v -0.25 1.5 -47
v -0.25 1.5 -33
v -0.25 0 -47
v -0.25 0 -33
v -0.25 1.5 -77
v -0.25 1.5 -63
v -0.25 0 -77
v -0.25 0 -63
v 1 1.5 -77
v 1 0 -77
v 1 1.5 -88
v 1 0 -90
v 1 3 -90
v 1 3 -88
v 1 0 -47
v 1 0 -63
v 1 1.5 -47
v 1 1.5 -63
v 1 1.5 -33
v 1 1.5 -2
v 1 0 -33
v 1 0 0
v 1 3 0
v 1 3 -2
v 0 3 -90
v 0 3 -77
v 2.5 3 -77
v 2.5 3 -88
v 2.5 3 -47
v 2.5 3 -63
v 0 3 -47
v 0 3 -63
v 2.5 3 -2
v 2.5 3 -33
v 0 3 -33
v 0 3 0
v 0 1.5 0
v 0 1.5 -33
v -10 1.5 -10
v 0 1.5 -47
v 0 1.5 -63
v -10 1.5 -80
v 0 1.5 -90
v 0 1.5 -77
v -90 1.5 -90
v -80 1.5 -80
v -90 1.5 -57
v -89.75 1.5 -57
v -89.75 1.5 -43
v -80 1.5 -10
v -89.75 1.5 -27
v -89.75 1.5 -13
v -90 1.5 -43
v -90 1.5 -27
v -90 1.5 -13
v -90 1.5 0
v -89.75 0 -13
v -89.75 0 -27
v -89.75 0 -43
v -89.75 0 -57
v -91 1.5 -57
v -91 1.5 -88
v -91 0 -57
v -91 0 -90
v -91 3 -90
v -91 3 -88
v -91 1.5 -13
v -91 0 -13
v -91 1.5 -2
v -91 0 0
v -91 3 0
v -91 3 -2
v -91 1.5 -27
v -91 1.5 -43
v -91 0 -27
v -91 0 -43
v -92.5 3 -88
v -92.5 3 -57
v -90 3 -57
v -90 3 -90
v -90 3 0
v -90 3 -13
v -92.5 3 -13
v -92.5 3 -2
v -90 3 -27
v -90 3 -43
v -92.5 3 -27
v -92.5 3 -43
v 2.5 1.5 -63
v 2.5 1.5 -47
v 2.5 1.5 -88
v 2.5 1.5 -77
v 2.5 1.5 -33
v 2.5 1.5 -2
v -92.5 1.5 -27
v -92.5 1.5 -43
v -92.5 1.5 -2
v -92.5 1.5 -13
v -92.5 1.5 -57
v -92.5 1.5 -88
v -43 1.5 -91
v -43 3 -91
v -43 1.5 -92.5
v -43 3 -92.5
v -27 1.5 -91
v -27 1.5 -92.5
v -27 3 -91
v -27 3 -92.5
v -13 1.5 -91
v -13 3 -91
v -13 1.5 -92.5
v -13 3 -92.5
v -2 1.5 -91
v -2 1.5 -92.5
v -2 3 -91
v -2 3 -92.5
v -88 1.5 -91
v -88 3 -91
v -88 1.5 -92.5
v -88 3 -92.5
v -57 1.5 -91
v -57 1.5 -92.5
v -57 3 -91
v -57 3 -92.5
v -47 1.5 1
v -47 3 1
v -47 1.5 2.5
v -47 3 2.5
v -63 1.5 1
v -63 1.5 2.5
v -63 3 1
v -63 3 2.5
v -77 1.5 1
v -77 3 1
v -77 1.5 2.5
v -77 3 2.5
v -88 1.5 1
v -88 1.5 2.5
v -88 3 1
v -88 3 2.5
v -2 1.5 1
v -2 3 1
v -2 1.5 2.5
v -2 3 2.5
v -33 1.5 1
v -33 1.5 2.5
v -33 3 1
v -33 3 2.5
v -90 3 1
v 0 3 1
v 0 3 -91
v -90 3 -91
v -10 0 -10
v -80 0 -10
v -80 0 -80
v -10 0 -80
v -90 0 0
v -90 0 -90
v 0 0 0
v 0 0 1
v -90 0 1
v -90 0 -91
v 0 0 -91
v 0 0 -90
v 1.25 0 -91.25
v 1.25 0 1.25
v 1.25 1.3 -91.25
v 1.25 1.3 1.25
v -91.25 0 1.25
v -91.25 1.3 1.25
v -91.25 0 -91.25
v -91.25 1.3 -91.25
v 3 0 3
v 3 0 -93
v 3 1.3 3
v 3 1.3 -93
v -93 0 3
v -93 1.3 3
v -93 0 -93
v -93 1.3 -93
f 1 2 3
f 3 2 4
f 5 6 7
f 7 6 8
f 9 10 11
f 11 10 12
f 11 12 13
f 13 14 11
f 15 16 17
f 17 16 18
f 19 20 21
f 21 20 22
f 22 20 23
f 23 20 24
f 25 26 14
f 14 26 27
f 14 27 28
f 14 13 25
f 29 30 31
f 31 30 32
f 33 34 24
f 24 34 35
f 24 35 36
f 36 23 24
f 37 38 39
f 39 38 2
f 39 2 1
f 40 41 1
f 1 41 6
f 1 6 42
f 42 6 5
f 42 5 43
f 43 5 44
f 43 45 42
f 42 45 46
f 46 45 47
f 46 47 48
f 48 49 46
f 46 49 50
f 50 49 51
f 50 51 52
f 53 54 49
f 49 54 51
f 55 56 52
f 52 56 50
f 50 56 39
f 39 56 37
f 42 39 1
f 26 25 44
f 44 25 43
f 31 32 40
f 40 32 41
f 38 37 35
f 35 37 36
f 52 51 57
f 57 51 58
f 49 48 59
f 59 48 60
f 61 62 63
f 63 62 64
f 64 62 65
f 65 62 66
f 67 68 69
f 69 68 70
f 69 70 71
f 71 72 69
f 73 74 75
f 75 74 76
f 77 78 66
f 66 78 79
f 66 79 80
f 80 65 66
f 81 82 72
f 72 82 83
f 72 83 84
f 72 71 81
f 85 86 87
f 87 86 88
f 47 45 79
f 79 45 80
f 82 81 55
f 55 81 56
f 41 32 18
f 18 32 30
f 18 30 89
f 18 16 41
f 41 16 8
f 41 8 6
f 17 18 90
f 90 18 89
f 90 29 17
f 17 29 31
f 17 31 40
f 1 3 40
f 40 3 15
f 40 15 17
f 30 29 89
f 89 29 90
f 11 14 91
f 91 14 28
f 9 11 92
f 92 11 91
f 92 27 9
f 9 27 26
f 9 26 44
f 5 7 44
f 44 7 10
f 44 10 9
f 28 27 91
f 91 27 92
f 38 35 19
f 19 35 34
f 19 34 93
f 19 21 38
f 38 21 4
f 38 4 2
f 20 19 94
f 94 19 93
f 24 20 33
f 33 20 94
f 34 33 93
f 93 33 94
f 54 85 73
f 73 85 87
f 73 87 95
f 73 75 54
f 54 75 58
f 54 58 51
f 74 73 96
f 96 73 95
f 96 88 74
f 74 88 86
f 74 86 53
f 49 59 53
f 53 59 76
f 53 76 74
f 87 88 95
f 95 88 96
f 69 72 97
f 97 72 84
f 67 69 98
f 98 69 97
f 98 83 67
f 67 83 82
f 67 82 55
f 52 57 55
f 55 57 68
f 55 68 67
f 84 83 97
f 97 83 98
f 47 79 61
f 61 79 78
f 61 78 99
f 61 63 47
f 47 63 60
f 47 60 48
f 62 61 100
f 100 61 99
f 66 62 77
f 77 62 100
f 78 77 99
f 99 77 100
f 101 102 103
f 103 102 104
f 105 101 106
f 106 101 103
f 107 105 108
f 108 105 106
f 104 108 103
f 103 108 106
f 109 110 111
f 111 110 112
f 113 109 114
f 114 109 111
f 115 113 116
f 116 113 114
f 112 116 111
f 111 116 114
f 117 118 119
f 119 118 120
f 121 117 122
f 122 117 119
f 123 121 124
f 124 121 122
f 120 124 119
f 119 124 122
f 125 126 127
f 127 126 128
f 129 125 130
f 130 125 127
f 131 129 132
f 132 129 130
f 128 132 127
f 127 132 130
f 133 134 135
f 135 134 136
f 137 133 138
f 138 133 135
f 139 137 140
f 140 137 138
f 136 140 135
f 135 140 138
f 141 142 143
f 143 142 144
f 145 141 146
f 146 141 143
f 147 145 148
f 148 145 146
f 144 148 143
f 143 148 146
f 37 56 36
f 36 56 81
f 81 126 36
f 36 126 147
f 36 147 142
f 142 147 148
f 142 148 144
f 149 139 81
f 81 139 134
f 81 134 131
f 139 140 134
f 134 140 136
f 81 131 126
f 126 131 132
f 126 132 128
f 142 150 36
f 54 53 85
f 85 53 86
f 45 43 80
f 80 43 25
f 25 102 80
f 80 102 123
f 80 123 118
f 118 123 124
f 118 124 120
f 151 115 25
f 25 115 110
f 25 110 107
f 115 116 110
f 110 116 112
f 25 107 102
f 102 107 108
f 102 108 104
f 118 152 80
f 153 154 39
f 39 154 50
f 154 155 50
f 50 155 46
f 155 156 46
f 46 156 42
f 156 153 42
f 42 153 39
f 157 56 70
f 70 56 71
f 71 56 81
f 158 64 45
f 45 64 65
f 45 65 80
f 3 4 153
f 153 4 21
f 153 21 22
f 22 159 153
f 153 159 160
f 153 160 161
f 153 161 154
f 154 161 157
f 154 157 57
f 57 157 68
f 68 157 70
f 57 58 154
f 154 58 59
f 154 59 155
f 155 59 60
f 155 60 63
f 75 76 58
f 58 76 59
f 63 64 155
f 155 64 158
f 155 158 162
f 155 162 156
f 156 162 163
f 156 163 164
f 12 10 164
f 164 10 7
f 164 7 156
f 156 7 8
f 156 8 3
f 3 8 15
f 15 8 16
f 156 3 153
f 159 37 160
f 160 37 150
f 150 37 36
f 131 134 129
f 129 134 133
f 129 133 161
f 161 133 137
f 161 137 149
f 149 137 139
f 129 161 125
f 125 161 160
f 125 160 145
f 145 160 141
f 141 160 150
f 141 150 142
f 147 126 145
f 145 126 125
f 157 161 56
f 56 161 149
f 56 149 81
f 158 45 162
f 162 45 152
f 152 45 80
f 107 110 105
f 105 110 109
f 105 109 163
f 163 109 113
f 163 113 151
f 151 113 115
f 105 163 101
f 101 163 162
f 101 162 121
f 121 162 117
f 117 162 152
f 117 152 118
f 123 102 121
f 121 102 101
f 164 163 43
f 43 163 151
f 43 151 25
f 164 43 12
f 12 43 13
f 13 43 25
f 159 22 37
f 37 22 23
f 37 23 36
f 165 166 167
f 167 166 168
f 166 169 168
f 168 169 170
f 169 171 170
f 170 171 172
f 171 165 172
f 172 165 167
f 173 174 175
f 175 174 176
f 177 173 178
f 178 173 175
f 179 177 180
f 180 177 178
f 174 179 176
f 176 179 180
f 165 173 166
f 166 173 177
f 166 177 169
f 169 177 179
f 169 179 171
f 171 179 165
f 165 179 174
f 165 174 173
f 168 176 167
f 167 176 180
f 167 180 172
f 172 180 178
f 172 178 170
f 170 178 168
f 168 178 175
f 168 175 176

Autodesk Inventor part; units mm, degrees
ref_plane "YZ Plane" through (0, 0, 0) normal (1, 0, 0) x (0, 1, 0)
ref_plane "XZ Plane" through (0, 0, 0) normal (0, 1, 0) x (-1, 0, 0)
ref_plane "XY Plane" through (0, 0, 0) normal (0, 0, 1) x (1, 0, 0)
sketch "Sketch1" plane through (0, 0, 0) normal (0, 1, 0) x (-1, 0, 0)
  line L0 (0, 0) -> (0, -90)
  line L1 (0, -90) -> (90, -90)
  line L2 (90, -90) -> (90, 0)
  line L3 (90, 0) -> (0, 0)
  line L4 (90, -90) -> (90, 0)
  line L5 (90, -90) -> (0, -90)
  line L6 (0, -90) -> (0, -91)
  line L7 (0, -91) -> (90, -91)
  line L8 (90, -91) -> (90, -90)
  line L9 (0, -90) -> (-1, -90)
  line L10 (-1, -90) -> (-1, 0)
  line L11 (-1, 0) -> (0, 0)
  line L12 (0, 0) -> (0, -90)
  line L13 (90, 0) -> (0, 0)
  line L14 (0, 0) -> (0, 1)
  line L15 (0, 1) -> (90, 1)
  line L16 (90, 1) -> (90, 0)
  line L17 (0, 0) -> (0, -10)
  line L18 (0, -10) -> (10, -10)
  line L19 (10, -10) -> (80, -10)
  line L20 (80, -10) -> (80, -80)
  line L21 (80, -80) -> (10, -80)
  line L22 (10, -80) -> (10, -10)
  line L23 (90, 0) -> (91, 0)
  line L24 (91, 0) -> (91, -90)
  line L25 (91, -90) -> (90, -90)
  line L26 (90, -90) -> (90, 0)
  dimension "d0" = 90
  dimension "d1" = 90
  dimension "d2" = 90
  dimension "d15" = 90
  dimension "d16" = 1
  dimension "d17" = 1
  dimension "d18" = 90
  dimension "d19" = 90
  dimension "d20" = 1
  dimension "d31" = 10
  dimension "d32" = 10
  dimension "d33" = 70
  dimension "d34" = 70
  dimension "d37" = 1
  dimension "d38" = 90
extrude "Extrusion4" add sketch "Sketch1" along normal blind 1.5
sketch "Sketch5" plane through (0, 1.5, 0) normal (0, 1, 0) x (1, 0, 0)
  line L0 (0, -1) -> (0, 0) projected
  line L1 (-90, -1) -> (0, -1) projected
  line L2 (0, 0) -> (-90, 0)
  line L3 (-90, 0) -> (-90, -1)
  line L4 (-90, -1) -> (0, -1)
  line L5 (0, -1) -> (0, 0)
  line L6 (-90, 90) -> (-91, 90) projected
  line L7 (-90, 0) -> (-91, 0)
  line L8 (-91, 0) -> (-91, 90)
  line L9 (-91, 90) -> (-90, 90)
  line L10 (-90, 90) -> (-90, 0)
  line L11 (0, 90) -> (0, 91) projected
  line L12 (-90, 90) -> (0, 90)
  line L13 (0, 90) -> (0, 91)
  line L14 (0, 91) -> (-90, 91)
  line L15 (-90, 91) -> (-90, 90)
  line L16 (1, 0) -> (1, 90) projected
  line L17 (0, 90) -> (1, 90)
  line L18 (1, 90) -> (1, 0)
  line L19 (1, 0) -> (0, 0)
  line L20 (0, 0) -> (0, 90)
  dimension "d85" = 90
  dimension "d86" = 1
extrude "Extrusion5" add sketch "Sketch5" along normal blind 1.5 contours L1 L3 L2 L0 | L20 L17 L16 L19 | L7 L8 L6 L10 | L12 L15 L14 L11
sketch "Sketch6" plane through (-90, 0, 1) normal (0, 0, 1) x (1, 0, 0)
  line L0 (90, 0) -> (90, 3) projected
  line L1 (90, 3) -> (88, 3)
  line L2 (90, 3) -> (0, 3) projected
  line L3 (88, 3) -> (57, 3)
  line L4 (57, 3) -> (57, 1.5)
  line L5 (57, 1.5) -> (88, 1.5)
  line L6 (88, 1.5) -> (88, 3)
  line L7 (57, 3) -> (43, 3)
  line L8 (43, 3) -> (27, 3)
  line L9 (27, 3) -> (27, 1.5)
  line L10 (27, 1.5) -> (43, 1.5)
  line L11 (43, 1.5) -> (43, 3)
  line L12 (27, 3) -> (13, 3)
  line L13 (13, 3) -> (2, 3)
  line L14 (2, 3) -> (2, 1.5)
  line L15 (2, 1.5) -> (13, 1.5)
  line L16 (13, 1.5) -> (13, 3)
  line L17 (2, 3) -> (0, 3)
  dimension "d41" = 2
  dimension "d42" = 31
  dimension "d43" = 1.5
  dimension "d44" = 14
  dimension "d45" = 16
  dimension "d46" = 1.5
  dimension "d47" = 14
  dimension "d48" = 11
  dimension "d49" = 1.5
extrude "Extrusion6" add sketch "Sketch6" along normal blind 1.5
sketch "Sketch9" plane through (0, 0, -91) normal (0, 0, -1) x (-1, 0, 0)
  line L0 (90, 0) -> (90, 3)
  line L1 (90, 3) -> (88, 3)
  line L2 (90, 3) -> (0, 3)
  line L3 (88, 3) -> (57, 3)
  line L4 (57, 3) -> (57, 1.5)
  line L5 (57, 1.5) -> (88, 1.5)
  line L6 (88, 1.5) -> (88, 3)
  line L7 (57, 3) -> (43, 3)
  line L8 (43, 3) -> (27, 3)
  line L9 (27, 3) -> (27, 1.5)
  line L10 (27, 1.5) -> (43, 1.5)
  line L11 (43, 1.5) -> (43, 3)
  line L12 (27, 3) -> (13, 3)
  line L13 (13, 3) -> (2, 3)
  line L14 (2, 3) -> (2, 1.5)
  line L15 (2, 1.5) -> (13, 1.5)
  line L16 (13, 1.5) -> (13, 3)
  line L17 (2, 3) -> (0, 3)
  point P0 (0, 0)
  dimension "d52" = 2
  dimension "d53" = 31
  dimension "d54" = 1.5
  dimension "d55" = 14
  dimension "d56" = 16
  dimension "d57" = 1.5
  dimension "d58" = 14
  dimension "d59" = 11
  dimension "d60" = 1.5
extrude "Extrusion7" add sketch "Sketch9" along normal blind 1.5
sketch "Sketch7" plane through (-91, 0, -90) normal (-1, 0, 0) x (0, 0, 1)
  line L0 (90, 1.5) -> (90, 3) projected
  line L1 (90, 3) -> (88, 3)
  line L2 (90, 3) -> (0, 3) projected
  line L3 (88, 3) -> (77, 3)
  line L4 (77, 3) -> (77, 1.5)
  line L5 (77, 1.5) -> (88, 1.5)
  line L6 (88, 1.5) -> (88, 3)
  line L7 (77, 3) -> (63, 3)
  line L8 (63, 3) -> (47, 3)
  line L9 (47, 3) -> (47, 1.5)
  line L10 (47, 1.5) -> (63, 1.5)
  line L11 (63, 1.5) -> (63, 3)
  line L12 (47, 3) -> (33, 3)
  line L13 (33, 3) -> (2, 3)
  line L14 (2, 3) -> (2, 1.5)
  line L15 (2, 1.5) -> (33, 1.5)
  line L16 (33, 1.5) -> (33, 3)
  line L17 (0, 0) -> (0, 3) projected
  line L18 (2, 3) -> (0, 3)
  point P0 (90, 0)
  dimension "d63" = 2
  dimension "d64" = 11
  dimension "d65" = 1.5
  dimension "d66" = 14
  dimension "d67" = 16
  dimension "d68" = 1.5
  dimension "d69" = 14
  dimension "d70" = 31
  dimension "d71" = 1.5
extrude "Extrusion8" add sketch "Sketch7" along normal blind 1.5
sketch "Sketch8" plane through (1, 0, 0) normal (1, 0, 0) x (0, 0, -1)
  line L0 (90, 1.5) -> (90, 3)
  line L1 (90, 3) -> (88, 3)
  line L2 (90, 3) -> (0, 3)
  line L3 (88, 3) -> (77, 3)
  line L4 (77, 3) -> (77, 1.5)
  line L5 (77, 1.5) -> (88, 1.5)
  line L6 (88, 1.5) -> (88, 3)
  line L7 (77, 3) -> (63, 3)
  line L8 (63, 3) -> (47, 3)
  line L9 (47, 3) -> (47, 1.5)
  line L10 (47, 1.5) -> (63, 1.5)
  line L11 (63, 1.5) -> (63, 3)
  line L12 (47, 3) -> (33, 3)
  line L13 (33, 3) -> (2, 3)
  line L14 (2, 3) -> (2, 1.5)
  line L15 (2, 1.5) -> (33, 1.5)
  line L16 (33, 1.5) -> (33, 3)
  line L17 (0, 0) -> (0, 3)
  line L18 (2, 3) -> (0, 3)
  point P0 (0, 0)
  point P1 (90, 0)
  dimension "d74" = 2
  dimension "d75" = 11
  dimension "d76" = 1.5
  dimension "d77" = 14
  dimension "d78" = 16
  dimension "d79" = 1.5
  dimension "d80" = 14
  dimension "d81" = 31
  dimension "d82" = 1.5
extrude "Extrusion9" add sketch "Sketch8" along normal blind 1.5
sketch "Sketch11" plane through (-90, 0, 1) normal (0, 0, 1) x (1, 0, 0)
  line L0 (0, 0) -> (90, 0) projected
  line L1 (0, 3) -> (2, 3) projected
  dimension "d87" = 3
sketch "Sketch12" plane through (0, 3, 0) normal (0, 1, 0) x (1, 0, 0)
  line L0 (-2, -2.5) -> (-33, -2.5) projected
  line L1 (0, 0) -> (-90, 0) projected
  dimension "d88" = 2.5
sketch "Sketch13" plane through (-91, 0, -90) normal (-1, 0, 0) x (0, 0, 1)
  line L0 (77, 1.5) -> (77, 3) projected
  line L1 (77, 3) -> (63, 3)
  line L2 (63, 3) -> (63, 0)
  line L3 (63, 0) -> (77, 0)
  line L4 (77, 0) -> (77, 3)
  line L5 (47, 1.5) -> (47, 3) projected
  line L6 (47, 3) -> (33, 3)
  line L7 (33, 3) -> (33, 0)
  line L8 (33, 0) -> (47, 0)
  line L9 (47, 0) -> (47, 3)
  point P0 (90, 0)
  dimension "d89" = 14
  dimension "d90" = 3
  dimension "d91" = 14
  dimension "d92" = 3
extrude "Extrusion10" cut sketch "Sketch13" against normal blind 1.25
sketch "Sketch14" plane through (1, 0, 0) normal (1, 0, 0) x (0, 0, -1)
  line L0 (33, 3) -> (47, 3)
  line L1 (47, 3) -> (47, 0)
  line L2 (47, 0) -> (33, 0)
  line L3 (33, 0) -> (33, 3)
  line L4 (77, 3) -> (63, 3)
  line L5 (63, 3) -> (63, 0)
  line L6 (63, 0) -> (77, 0)
  line L7 (77, 0) -> (77, 3)
  point P0 (0, 0)
  dimension "d95" = 14
  dimension "d96" = 3
  dimension "d97" = 14
  dimension "d98" = 3
extrude "Extrusion11" cut sketch "Sketch14" against normal blind 1.25
sketch "Sketch15" plane through (0, 0, 0) normal (0, -1, 0) x (1, 0, 0)
  line L0 (-90, -90) -> (-91, -90) projected
  line L1 (-91, -90) -> (-91.25, -90)
  line L2 (-91, -90) -> (-90.75, -90) construction
  line L3 (-91.25, -90) -> (-91.25, -91.25)
  line L4 (-91.25, -91.25) -> (1.25, -91.25)
  line L5 (1.25, -91.25) -> (1.25, 1.25)
  line L6 (1.25, 1.25) -> (-91.25, 1.25)
  line L7 (-91.25, 1.25) -> (-91.25, -91.25)
  line L8 (-93, -93) -> (3, -93)
  line L9 (3, -93) -> (3, 3)
  line L10 (3, 3) -> (-93, 3)
  line L11 (-93, 3) -> (-93, -93)
  line L12 (-91.25, -91.25) -> (-91.25, -93)
  line L13 (-91.25, -91.25) -> (-93, -91.25)
  point P0 (0, 0)
  dimension "d101" = 0.25
  dimension "d102" = 180
  dimension "d103" = 1.25
  dimension "d104" = 92.5
  dimension "d105" = 92.5
  dimension "d106" = 96
  dimension "d107" = 96
  dimension "d108" = 1.75
  dimension "d109" = 1.75
extrude "Extrusion12" add sketch "Sketch15" against normal blind 1.3
properties part number "Slide_Final"
